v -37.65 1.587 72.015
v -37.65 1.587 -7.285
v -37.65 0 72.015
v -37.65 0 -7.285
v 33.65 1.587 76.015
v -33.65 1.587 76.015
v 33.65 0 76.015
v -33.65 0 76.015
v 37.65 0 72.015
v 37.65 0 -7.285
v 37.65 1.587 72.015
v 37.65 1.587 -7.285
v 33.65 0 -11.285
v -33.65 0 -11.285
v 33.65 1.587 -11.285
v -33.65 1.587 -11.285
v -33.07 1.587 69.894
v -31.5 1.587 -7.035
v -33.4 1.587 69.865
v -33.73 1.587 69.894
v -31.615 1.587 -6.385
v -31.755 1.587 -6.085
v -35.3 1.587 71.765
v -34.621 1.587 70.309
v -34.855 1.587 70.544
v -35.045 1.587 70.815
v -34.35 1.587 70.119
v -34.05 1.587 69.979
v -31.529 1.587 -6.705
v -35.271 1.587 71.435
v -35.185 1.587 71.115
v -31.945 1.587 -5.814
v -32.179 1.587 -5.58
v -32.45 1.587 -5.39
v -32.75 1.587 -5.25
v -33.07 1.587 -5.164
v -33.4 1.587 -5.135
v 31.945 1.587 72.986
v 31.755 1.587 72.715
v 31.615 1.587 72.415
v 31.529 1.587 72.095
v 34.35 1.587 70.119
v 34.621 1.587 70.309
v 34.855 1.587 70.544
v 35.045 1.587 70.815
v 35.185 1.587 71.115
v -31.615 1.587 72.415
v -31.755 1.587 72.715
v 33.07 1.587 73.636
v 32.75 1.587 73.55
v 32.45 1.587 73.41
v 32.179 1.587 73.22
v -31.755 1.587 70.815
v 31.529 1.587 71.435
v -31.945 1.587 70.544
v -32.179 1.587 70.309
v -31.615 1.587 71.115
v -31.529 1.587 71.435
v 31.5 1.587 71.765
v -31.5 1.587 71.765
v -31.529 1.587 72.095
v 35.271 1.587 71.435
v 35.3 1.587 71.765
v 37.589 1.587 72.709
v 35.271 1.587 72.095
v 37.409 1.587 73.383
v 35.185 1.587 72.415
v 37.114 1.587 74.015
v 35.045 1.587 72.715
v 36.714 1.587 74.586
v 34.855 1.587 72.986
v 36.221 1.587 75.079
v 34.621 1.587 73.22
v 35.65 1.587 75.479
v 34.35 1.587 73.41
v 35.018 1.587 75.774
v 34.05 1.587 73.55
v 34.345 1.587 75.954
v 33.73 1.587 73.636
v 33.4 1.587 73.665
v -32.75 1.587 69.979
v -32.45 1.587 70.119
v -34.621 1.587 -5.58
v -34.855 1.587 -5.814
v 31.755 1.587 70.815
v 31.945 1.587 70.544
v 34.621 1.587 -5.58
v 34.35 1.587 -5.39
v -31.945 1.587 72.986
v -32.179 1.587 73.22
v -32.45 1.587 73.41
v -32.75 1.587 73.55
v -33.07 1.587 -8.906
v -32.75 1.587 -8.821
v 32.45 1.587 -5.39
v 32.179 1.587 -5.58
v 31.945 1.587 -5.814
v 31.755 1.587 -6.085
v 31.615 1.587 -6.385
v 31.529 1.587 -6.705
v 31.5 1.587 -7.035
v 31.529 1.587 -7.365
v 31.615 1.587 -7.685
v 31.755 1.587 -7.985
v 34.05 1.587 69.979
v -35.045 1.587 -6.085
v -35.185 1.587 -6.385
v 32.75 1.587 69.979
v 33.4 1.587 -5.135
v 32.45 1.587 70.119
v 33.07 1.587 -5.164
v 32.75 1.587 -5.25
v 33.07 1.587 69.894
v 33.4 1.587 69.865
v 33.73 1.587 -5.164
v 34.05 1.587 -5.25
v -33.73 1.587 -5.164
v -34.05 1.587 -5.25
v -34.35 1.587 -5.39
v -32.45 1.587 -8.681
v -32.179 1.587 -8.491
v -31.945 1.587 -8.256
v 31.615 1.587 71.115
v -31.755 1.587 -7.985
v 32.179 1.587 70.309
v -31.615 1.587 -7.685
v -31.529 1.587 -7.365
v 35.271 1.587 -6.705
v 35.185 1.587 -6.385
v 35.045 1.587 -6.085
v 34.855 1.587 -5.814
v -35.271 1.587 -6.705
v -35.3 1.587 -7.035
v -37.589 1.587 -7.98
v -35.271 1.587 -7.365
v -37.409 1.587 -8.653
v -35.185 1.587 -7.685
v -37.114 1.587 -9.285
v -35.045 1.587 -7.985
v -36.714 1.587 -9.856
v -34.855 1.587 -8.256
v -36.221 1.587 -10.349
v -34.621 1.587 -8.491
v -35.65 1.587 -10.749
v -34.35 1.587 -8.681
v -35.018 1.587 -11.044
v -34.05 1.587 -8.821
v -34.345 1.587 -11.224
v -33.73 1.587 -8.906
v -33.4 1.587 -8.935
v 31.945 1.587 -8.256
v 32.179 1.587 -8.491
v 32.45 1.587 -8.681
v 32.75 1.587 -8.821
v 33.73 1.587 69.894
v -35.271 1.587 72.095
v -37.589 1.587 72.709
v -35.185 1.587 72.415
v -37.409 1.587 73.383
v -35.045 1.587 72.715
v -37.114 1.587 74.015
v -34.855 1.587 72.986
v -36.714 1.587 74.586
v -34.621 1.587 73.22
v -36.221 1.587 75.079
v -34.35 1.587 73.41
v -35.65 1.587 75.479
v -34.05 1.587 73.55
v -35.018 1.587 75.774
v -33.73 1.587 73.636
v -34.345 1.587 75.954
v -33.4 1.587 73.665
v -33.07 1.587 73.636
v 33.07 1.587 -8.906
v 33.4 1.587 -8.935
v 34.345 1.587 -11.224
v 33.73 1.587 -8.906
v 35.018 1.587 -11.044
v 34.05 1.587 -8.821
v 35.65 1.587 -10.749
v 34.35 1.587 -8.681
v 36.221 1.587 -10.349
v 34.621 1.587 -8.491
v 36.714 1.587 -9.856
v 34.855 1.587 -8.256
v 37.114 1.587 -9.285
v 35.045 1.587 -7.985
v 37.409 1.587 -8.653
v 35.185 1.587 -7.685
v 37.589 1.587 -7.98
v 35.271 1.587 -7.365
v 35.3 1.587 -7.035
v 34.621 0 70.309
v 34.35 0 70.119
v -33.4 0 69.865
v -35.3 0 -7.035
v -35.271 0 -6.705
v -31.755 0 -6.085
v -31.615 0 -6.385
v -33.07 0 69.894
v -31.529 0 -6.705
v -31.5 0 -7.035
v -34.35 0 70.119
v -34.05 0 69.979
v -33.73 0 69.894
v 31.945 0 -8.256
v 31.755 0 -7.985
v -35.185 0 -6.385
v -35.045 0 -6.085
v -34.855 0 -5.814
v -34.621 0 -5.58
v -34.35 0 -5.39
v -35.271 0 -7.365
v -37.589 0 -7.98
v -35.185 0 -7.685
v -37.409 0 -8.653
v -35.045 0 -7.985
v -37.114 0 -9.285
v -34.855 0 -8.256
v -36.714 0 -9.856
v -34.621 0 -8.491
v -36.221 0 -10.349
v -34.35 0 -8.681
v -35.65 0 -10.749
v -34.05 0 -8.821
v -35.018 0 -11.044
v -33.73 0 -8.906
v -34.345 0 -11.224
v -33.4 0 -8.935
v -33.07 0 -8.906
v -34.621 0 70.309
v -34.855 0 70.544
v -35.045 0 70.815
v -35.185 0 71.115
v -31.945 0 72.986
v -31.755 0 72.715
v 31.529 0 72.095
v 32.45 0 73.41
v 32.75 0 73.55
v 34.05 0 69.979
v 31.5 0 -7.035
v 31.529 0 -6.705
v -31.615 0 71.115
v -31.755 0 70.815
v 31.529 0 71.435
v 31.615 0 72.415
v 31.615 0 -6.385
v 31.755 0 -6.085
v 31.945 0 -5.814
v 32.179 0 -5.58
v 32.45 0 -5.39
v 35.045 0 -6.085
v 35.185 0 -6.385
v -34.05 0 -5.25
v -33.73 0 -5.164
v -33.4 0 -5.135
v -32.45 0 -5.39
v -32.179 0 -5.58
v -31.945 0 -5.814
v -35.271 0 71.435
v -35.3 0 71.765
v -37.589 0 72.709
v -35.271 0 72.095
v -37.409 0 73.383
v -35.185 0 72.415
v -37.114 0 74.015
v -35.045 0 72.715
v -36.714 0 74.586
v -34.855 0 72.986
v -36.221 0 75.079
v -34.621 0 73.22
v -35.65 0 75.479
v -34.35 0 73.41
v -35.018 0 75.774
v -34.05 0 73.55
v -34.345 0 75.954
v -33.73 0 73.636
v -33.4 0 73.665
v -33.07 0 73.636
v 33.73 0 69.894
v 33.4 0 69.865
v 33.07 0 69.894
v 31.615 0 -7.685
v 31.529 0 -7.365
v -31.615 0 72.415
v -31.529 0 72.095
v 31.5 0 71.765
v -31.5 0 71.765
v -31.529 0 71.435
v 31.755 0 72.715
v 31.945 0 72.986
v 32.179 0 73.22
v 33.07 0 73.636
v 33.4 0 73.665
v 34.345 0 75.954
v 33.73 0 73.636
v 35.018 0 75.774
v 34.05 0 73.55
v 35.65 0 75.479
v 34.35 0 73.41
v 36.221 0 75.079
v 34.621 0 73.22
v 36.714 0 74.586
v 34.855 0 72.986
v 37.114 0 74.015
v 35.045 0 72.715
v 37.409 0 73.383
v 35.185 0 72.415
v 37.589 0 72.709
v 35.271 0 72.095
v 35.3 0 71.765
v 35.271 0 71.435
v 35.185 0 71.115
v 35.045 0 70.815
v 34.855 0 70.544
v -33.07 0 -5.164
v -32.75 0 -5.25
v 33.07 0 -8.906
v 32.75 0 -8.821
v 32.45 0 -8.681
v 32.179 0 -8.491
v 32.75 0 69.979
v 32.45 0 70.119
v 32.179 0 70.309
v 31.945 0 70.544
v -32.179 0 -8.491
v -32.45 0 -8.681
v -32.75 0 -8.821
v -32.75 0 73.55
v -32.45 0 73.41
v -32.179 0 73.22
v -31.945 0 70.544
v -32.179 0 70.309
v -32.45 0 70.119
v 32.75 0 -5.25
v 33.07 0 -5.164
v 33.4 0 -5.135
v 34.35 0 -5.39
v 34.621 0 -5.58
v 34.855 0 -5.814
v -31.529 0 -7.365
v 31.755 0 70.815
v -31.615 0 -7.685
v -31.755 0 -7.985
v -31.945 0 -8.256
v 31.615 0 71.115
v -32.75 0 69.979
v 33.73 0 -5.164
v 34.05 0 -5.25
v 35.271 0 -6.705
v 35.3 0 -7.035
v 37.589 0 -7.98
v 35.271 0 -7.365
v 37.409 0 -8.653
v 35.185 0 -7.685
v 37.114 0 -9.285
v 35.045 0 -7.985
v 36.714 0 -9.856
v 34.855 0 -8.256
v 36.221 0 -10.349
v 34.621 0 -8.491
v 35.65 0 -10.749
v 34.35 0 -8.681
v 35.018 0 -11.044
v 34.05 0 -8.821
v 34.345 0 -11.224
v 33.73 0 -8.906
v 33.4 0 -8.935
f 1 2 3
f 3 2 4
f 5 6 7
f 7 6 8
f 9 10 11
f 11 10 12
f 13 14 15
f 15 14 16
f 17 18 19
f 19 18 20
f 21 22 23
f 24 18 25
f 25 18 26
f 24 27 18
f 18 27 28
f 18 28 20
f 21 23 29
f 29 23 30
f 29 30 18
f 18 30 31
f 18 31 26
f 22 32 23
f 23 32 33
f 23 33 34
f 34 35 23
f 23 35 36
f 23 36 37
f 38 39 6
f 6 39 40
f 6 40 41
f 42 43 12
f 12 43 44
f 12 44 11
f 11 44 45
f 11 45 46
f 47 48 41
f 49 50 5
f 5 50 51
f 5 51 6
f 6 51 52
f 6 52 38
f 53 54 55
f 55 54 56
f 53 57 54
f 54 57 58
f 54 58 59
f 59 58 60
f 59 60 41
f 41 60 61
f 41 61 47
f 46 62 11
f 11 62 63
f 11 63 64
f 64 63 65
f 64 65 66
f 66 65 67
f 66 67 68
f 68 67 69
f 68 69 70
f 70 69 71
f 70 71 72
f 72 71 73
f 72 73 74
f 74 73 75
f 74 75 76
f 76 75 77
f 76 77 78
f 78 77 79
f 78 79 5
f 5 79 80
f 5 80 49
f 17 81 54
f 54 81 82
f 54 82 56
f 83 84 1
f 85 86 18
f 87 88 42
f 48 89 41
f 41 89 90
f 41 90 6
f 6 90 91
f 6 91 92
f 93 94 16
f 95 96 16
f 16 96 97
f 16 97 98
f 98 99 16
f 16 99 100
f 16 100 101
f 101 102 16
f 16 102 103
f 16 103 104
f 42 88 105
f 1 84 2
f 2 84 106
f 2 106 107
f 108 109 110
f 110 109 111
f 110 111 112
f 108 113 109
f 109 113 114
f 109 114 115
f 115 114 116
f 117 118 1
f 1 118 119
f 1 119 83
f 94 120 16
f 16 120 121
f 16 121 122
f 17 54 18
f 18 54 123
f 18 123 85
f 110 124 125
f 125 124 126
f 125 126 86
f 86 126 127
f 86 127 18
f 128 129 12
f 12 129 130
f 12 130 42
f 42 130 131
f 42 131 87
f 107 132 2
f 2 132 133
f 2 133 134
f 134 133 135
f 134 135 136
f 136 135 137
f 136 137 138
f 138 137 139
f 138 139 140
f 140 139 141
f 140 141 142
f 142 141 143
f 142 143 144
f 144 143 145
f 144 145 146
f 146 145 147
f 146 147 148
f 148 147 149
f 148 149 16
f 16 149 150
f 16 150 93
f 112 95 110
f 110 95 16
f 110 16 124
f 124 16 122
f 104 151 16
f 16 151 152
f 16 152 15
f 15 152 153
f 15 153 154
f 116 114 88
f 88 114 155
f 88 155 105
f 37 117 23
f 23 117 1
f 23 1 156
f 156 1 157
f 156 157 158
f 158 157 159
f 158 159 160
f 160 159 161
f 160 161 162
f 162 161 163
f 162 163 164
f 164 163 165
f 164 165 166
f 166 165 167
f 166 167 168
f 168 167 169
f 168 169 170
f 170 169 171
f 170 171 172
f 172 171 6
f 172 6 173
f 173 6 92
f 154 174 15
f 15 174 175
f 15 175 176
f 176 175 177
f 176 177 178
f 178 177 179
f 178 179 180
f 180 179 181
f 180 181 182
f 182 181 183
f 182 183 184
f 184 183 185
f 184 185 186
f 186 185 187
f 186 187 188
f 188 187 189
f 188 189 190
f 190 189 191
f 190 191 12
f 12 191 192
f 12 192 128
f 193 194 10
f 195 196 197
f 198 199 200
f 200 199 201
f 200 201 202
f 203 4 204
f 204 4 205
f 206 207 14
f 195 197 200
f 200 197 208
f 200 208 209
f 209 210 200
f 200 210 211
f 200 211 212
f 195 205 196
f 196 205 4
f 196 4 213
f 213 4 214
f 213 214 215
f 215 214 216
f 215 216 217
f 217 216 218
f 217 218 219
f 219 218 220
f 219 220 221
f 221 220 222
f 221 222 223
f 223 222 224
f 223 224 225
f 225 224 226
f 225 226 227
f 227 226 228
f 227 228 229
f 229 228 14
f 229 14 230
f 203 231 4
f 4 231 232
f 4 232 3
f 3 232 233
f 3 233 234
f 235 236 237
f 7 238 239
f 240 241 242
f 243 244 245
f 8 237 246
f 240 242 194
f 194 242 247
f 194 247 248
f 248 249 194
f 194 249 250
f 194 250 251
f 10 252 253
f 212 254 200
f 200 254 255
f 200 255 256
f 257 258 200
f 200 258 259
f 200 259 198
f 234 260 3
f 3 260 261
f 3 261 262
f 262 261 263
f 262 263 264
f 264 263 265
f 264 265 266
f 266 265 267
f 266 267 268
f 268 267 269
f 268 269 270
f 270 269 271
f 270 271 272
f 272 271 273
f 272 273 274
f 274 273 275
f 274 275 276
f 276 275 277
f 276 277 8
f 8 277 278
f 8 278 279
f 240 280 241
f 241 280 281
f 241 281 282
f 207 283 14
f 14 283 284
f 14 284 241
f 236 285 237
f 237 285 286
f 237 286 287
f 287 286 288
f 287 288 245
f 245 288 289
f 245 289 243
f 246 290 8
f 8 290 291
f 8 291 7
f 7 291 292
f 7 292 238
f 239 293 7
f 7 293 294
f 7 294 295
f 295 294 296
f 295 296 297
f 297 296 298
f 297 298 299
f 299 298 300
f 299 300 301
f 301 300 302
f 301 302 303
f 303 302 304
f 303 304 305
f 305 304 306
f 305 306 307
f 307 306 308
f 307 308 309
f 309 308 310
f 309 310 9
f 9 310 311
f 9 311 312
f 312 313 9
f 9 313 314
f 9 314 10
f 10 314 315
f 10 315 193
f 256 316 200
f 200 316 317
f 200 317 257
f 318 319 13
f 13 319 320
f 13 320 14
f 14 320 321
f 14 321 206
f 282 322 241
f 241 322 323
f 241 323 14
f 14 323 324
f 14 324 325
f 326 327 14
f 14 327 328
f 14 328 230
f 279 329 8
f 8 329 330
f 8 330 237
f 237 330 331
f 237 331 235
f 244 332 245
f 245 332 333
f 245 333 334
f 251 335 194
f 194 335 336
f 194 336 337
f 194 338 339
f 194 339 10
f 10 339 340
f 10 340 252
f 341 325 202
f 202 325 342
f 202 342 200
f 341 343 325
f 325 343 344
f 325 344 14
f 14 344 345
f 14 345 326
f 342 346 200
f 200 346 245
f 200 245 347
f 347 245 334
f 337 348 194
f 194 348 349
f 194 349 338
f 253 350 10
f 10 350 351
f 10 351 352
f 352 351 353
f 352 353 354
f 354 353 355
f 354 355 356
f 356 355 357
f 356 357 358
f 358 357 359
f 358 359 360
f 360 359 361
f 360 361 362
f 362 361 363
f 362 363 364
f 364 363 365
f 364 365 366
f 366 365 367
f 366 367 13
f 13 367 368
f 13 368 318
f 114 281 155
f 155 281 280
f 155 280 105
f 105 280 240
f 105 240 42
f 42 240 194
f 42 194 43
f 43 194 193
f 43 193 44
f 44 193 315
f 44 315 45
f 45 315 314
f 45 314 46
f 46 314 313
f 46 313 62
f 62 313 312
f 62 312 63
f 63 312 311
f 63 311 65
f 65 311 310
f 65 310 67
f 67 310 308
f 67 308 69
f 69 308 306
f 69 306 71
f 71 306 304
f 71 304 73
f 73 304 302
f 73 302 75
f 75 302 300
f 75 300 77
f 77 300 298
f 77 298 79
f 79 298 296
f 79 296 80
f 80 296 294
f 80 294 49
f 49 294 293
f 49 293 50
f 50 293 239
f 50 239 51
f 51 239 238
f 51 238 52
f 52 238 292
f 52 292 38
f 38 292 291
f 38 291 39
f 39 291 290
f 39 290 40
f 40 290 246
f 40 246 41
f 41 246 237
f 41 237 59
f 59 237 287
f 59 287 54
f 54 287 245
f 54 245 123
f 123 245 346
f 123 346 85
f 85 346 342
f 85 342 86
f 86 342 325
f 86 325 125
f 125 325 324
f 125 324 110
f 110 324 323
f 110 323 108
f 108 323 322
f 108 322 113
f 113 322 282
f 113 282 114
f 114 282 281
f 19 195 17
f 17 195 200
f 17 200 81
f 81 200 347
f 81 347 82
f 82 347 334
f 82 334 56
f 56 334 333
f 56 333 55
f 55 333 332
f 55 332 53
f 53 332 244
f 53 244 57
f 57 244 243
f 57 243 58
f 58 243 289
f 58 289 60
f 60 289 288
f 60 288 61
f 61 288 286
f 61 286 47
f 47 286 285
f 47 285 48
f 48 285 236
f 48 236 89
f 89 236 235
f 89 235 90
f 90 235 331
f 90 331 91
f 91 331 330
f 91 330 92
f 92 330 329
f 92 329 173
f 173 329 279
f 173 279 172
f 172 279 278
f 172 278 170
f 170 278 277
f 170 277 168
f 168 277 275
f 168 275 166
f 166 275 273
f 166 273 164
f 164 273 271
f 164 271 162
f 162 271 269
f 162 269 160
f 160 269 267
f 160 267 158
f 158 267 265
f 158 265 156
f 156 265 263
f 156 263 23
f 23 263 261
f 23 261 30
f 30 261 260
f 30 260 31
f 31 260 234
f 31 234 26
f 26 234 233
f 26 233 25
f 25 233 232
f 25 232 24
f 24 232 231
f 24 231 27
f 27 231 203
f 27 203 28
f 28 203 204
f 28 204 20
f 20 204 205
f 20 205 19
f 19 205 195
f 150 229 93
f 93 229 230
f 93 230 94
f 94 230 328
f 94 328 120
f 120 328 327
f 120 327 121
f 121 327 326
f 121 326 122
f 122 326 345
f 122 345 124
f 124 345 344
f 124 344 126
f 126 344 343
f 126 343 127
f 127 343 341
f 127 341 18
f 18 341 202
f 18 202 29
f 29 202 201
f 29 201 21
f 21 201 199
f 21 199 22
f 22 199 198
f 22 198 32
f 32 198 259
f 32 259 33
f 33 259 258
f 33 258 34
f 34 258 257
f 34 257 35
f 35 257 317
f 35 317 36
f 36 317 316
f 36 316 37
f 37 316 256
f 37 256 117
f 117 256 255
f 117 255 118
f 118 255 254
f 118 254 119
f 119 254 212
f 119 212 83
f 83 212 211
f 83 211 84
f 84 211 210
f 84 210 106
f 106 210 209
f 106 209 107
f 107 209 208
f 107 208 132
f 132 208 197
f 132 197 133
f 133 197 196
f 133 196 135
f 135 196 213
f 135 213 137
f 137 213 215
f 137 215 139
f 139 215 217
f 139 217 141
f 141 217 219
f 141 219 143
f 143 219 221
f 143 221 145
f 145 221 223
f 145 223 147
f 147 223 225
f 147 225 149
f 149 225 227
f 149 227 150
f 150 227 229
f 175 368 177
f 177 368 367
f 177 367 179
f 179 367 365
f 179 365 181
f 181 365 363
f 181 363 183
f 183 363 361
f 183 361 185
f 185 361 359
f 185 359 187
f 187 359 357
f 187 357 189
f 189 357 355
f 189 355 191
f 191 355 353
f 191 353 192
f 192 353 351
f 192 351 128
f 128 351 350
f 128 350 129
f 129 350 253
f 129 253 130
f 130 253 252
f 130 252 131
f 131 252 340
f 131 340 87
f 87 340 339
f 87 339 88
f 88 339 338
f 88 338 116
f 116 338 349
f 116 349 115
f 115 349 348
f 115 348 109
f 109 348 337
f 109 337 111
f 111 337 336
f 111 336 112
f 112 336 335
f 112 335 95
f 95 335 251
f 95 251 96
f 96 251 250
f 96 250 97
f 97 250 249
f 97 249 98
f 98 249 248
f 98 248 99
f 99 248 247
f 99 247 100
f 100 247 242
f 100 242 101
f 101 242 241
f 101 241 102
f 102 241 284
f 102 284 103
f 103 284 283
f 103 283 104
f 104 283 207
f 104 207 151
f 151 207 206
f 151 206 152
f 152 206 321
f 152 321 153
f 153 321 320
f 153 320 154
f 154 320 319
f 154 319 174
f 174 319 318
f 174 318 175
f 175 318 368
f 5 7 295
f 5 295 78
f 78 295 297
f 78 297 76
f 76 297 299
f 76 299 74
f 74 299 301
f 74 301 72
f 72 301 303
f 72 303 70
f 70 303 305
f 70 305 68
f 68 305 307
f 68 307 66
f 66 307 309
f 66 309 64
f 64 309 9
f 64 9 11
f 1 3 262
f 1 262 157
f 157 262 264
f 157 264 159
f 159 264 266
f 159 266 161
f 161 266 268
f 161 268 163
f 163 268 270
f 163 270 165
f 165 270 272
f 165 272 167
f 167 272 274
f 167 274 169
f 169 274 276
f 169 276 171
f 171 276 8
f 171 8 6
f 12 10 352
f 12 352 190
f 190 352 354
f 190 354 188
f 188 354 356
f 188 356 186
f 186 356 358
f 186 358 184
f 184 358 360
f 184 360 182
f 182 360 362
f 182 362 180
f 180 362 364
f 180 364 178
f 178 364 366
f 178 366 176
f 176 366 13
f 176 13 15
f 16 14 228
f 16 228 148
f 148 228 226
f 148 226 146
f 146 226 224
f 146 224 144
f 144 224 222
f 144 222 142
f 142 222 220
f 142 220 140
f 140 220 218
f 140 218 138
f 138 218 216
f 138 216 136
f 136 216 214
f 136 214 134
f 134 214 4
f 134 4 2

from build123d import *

# Parameters (mm, degrees)
SKETCH1_W           = 75.3
SKETCH1_H           = 87.3
BOSS_EXTRUDE1_DEPTH = 1.5875
SKETCH2_R           = 1.9
CUT_EXTRUDE1_DEPTH  = 1.5875
FILLET1_R           = 4


with BuildPart() as part:
    # Sketch1 → Boss-Extrude1 (new body)
    with BuildSketch(Plane(origin=(0, 0, 0), x_dir=(1, 0, 0), z_dir=(0, 1, 0))):
        with Locations((0, -32.364818223)):
            Rectangle(SKETCH1_W, SKETCH1_H)
    extrude(amount=BOSS_EXTRUDE1_DEPTH)

    # Sketch2 → Cut-Extrude1 (cut)
    with BuildSketch(Plane(origin=(0, 0, 0), x_dir=(1, 0, 0), z_dir=(0, 1, 0))):
        with Locations(Location((33.4, -71.764818223, 0), (0, 0, 270))):
            Circle(SKETCH2_R)
        with Locations(Location((-33.4, -71.764818223, 0), (0, 0, 270))):
            Circle(SKETCH2_R)
        with Locations(Location((-33.4, 7.035181777, 0), (0, 0, 270))):
            Circle(SKETCH2_R)
        with Locations(Location((33.4, 7.035181777, 0), (0, 0, 270))):
            Circle(SKETCH2_R)
    extrude(amount=CUT_EXTRUDE1_DEPTH, mode=Mode.SUBTRACT)

    # Fillet1
    fillet1_edges = [part.edges().sort_by_distance(p)[0] for p in [
        (-37.65, 0.79375, -11.285181777),
        (37.65, 0.79375, -11.285181777),
        (37.65, 0.79375, 76.014818223),
        (-37.65, 0.79375, 76.014818223),
    ]]
    fillet(fillet1_edges, radius=FILLET1_R)


solid = part.part
